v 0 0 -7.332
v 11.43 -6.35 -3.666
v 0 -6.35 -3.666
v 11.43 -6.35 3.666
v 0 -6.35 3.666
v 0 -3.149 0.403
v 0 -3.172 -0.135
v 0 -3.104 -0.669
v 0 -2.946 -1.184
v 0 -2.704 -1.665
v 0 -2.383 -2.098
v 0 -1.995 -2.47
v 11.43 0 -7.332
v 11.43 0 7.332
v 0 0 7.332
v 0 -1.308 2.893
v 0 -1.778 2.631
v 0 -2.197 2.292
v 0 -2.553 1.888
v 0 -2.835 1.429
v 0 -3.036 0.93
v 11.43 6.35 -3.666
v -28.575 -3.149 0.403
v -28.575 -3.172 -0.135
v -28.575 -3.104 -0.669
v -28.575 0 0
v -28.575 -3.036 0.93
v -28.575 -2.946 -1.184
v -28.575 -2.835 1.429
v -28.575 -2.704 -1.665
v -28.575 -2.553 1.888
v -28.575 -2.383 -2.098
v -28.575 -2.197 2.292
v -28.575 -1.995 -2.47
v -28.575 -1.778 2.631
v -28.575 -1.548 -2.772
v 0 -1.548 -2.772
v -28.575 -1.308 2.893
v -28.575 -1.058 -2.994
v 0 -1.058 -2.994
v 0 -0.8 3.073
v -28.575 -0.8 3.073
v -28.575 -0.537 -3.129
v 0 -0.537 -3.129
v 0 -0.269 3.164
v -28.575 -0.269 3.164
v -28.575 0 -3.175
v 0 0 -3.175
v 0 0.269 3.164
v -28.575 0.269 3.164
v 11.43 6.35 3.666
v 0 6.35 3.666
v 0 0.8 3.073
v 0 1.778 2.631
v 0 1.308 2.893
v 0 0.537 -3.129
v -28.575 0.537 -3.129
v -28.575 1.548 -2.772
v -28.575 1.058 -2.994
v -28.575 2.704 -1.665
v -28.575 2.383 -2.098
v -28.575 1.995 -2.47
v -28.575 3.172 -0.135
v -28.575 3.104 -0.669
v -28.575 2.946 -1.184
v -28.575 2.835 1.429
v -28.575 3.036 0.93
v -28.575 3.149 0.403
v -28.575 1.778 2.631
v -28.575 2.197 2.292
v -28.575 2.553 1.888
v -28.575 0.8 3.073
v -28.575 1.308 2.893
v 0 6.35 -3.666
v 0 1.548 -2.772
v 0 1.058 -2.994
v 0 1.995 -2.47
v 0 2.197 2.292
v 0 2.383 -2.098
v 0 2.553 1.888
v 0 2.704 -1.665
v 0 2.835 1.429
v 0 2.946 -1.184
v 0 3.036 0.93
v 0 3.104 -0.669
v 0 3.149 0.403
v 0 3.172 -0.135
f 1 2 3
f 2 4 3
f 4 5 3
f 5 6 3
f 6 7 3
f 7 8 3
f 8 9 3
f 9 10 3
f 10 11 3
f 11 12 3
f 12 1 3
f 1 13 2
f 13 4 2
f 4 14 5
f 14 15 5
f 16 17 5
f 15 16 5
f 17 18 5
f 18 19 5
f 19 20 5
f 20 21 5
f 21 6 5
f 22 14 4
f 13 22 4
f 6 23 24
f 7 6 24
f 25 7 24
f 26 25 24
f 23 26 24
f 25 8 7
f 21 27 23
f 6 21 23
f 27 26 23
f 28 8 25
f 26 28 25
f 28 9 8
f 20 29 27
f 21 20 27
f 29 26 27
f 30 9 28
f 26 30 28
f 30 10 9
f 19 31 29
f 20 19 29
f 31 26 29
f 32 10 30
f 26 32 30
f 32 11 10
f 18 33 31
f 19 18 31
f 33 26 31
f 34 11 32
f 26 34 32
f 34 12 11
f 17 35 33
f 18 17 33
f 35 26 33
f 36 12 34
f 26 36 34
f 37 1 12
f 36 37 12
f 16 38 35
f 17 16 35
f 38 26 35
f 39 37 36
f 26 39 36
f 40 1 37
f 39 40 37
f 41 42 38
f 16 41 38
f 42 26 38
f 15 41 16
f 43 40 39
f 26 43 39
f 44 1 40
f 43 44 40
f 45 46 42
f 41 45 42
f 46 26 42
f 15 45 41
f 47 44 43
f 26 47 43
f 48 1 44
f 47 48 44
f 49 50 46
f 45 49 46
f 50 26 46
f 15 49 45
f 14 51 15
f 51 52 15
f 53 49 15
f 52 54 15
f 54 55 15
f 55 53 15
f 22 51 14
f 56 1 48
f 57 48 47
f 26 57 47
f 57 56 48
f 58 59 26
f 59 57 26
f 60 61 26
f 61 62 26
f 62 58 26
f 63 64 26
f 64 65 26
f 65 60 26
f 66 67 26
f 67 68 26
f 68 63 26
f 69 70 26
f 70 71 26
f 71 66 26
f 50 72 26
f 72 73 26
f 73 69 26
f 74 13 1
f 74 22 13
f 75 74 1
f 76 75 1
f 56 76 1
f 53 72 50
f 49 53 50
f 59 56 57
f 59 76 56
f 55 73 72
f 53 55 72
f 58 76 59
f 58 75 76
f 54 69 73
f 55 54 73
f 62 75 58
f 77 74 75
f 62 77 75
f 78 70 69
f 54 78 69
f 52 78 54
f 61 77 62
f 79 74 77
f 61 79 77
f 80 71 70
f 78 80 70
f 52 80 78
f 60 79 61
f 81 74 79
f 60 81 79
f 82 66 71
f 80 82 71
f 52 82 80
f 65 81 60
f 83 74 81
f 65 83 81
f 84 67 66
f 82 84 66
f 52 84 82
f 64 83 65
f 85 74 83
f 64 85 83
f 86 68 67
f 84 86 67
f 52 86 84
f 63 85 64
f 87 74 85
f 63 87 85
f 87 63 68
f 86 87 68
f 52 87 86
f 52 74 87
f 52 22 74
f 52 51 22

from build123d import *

# Parameters (mm, degrees)
SKETCH1_R           = 3.175
BOSS_EXTRUDE1_DEPTH = 11.43
SKETCH1_3_R         = 3.175
BOSS_EXTRUDE2_DEPTH = 28.575


with BuildPart() as part:
    # Sketch1 → Boss-Extrude1 (new body)
    # profile 1 of 2: a face of its own
    with BuildSketch(Plane(origin=(0, 0, 0), x_dir=(0, 0, -1), z_dir=(1, 0, 0))):
        Polygon((3.666174209, -6.35), (7.332348419, 0), (3.666174209, 6.35), (-3.666174209, 6.35), (-7.332348419, 0), (-3.666174209, -6.35), align=None)
        Circle(SKETCH1_R, mode=Mode.SUBTRACT)
    # profile 2 of 2: a face of its own
    with BuildSketch(Plane(origin=(0, 0, 0), x_dir=(0, 0, -1), z_dir=(1, 0, 0))):
        Circle(SKETCH1_R)
    extrude(amount=BOSS_EXTRUDE1_DEPTH)

    # Sketch1<3> → Boss-Extrude2 (add)
    with BuildSketch(Plane(origin=(0, 0, 0), x_dir=(0, 0, -1), z_dir=(1, 0, 0))):
        Circle(SKETCH1_3_R)
    extrude(amount=-BOSS_EXTRUDE2_DEPTH)


solid = part.part
